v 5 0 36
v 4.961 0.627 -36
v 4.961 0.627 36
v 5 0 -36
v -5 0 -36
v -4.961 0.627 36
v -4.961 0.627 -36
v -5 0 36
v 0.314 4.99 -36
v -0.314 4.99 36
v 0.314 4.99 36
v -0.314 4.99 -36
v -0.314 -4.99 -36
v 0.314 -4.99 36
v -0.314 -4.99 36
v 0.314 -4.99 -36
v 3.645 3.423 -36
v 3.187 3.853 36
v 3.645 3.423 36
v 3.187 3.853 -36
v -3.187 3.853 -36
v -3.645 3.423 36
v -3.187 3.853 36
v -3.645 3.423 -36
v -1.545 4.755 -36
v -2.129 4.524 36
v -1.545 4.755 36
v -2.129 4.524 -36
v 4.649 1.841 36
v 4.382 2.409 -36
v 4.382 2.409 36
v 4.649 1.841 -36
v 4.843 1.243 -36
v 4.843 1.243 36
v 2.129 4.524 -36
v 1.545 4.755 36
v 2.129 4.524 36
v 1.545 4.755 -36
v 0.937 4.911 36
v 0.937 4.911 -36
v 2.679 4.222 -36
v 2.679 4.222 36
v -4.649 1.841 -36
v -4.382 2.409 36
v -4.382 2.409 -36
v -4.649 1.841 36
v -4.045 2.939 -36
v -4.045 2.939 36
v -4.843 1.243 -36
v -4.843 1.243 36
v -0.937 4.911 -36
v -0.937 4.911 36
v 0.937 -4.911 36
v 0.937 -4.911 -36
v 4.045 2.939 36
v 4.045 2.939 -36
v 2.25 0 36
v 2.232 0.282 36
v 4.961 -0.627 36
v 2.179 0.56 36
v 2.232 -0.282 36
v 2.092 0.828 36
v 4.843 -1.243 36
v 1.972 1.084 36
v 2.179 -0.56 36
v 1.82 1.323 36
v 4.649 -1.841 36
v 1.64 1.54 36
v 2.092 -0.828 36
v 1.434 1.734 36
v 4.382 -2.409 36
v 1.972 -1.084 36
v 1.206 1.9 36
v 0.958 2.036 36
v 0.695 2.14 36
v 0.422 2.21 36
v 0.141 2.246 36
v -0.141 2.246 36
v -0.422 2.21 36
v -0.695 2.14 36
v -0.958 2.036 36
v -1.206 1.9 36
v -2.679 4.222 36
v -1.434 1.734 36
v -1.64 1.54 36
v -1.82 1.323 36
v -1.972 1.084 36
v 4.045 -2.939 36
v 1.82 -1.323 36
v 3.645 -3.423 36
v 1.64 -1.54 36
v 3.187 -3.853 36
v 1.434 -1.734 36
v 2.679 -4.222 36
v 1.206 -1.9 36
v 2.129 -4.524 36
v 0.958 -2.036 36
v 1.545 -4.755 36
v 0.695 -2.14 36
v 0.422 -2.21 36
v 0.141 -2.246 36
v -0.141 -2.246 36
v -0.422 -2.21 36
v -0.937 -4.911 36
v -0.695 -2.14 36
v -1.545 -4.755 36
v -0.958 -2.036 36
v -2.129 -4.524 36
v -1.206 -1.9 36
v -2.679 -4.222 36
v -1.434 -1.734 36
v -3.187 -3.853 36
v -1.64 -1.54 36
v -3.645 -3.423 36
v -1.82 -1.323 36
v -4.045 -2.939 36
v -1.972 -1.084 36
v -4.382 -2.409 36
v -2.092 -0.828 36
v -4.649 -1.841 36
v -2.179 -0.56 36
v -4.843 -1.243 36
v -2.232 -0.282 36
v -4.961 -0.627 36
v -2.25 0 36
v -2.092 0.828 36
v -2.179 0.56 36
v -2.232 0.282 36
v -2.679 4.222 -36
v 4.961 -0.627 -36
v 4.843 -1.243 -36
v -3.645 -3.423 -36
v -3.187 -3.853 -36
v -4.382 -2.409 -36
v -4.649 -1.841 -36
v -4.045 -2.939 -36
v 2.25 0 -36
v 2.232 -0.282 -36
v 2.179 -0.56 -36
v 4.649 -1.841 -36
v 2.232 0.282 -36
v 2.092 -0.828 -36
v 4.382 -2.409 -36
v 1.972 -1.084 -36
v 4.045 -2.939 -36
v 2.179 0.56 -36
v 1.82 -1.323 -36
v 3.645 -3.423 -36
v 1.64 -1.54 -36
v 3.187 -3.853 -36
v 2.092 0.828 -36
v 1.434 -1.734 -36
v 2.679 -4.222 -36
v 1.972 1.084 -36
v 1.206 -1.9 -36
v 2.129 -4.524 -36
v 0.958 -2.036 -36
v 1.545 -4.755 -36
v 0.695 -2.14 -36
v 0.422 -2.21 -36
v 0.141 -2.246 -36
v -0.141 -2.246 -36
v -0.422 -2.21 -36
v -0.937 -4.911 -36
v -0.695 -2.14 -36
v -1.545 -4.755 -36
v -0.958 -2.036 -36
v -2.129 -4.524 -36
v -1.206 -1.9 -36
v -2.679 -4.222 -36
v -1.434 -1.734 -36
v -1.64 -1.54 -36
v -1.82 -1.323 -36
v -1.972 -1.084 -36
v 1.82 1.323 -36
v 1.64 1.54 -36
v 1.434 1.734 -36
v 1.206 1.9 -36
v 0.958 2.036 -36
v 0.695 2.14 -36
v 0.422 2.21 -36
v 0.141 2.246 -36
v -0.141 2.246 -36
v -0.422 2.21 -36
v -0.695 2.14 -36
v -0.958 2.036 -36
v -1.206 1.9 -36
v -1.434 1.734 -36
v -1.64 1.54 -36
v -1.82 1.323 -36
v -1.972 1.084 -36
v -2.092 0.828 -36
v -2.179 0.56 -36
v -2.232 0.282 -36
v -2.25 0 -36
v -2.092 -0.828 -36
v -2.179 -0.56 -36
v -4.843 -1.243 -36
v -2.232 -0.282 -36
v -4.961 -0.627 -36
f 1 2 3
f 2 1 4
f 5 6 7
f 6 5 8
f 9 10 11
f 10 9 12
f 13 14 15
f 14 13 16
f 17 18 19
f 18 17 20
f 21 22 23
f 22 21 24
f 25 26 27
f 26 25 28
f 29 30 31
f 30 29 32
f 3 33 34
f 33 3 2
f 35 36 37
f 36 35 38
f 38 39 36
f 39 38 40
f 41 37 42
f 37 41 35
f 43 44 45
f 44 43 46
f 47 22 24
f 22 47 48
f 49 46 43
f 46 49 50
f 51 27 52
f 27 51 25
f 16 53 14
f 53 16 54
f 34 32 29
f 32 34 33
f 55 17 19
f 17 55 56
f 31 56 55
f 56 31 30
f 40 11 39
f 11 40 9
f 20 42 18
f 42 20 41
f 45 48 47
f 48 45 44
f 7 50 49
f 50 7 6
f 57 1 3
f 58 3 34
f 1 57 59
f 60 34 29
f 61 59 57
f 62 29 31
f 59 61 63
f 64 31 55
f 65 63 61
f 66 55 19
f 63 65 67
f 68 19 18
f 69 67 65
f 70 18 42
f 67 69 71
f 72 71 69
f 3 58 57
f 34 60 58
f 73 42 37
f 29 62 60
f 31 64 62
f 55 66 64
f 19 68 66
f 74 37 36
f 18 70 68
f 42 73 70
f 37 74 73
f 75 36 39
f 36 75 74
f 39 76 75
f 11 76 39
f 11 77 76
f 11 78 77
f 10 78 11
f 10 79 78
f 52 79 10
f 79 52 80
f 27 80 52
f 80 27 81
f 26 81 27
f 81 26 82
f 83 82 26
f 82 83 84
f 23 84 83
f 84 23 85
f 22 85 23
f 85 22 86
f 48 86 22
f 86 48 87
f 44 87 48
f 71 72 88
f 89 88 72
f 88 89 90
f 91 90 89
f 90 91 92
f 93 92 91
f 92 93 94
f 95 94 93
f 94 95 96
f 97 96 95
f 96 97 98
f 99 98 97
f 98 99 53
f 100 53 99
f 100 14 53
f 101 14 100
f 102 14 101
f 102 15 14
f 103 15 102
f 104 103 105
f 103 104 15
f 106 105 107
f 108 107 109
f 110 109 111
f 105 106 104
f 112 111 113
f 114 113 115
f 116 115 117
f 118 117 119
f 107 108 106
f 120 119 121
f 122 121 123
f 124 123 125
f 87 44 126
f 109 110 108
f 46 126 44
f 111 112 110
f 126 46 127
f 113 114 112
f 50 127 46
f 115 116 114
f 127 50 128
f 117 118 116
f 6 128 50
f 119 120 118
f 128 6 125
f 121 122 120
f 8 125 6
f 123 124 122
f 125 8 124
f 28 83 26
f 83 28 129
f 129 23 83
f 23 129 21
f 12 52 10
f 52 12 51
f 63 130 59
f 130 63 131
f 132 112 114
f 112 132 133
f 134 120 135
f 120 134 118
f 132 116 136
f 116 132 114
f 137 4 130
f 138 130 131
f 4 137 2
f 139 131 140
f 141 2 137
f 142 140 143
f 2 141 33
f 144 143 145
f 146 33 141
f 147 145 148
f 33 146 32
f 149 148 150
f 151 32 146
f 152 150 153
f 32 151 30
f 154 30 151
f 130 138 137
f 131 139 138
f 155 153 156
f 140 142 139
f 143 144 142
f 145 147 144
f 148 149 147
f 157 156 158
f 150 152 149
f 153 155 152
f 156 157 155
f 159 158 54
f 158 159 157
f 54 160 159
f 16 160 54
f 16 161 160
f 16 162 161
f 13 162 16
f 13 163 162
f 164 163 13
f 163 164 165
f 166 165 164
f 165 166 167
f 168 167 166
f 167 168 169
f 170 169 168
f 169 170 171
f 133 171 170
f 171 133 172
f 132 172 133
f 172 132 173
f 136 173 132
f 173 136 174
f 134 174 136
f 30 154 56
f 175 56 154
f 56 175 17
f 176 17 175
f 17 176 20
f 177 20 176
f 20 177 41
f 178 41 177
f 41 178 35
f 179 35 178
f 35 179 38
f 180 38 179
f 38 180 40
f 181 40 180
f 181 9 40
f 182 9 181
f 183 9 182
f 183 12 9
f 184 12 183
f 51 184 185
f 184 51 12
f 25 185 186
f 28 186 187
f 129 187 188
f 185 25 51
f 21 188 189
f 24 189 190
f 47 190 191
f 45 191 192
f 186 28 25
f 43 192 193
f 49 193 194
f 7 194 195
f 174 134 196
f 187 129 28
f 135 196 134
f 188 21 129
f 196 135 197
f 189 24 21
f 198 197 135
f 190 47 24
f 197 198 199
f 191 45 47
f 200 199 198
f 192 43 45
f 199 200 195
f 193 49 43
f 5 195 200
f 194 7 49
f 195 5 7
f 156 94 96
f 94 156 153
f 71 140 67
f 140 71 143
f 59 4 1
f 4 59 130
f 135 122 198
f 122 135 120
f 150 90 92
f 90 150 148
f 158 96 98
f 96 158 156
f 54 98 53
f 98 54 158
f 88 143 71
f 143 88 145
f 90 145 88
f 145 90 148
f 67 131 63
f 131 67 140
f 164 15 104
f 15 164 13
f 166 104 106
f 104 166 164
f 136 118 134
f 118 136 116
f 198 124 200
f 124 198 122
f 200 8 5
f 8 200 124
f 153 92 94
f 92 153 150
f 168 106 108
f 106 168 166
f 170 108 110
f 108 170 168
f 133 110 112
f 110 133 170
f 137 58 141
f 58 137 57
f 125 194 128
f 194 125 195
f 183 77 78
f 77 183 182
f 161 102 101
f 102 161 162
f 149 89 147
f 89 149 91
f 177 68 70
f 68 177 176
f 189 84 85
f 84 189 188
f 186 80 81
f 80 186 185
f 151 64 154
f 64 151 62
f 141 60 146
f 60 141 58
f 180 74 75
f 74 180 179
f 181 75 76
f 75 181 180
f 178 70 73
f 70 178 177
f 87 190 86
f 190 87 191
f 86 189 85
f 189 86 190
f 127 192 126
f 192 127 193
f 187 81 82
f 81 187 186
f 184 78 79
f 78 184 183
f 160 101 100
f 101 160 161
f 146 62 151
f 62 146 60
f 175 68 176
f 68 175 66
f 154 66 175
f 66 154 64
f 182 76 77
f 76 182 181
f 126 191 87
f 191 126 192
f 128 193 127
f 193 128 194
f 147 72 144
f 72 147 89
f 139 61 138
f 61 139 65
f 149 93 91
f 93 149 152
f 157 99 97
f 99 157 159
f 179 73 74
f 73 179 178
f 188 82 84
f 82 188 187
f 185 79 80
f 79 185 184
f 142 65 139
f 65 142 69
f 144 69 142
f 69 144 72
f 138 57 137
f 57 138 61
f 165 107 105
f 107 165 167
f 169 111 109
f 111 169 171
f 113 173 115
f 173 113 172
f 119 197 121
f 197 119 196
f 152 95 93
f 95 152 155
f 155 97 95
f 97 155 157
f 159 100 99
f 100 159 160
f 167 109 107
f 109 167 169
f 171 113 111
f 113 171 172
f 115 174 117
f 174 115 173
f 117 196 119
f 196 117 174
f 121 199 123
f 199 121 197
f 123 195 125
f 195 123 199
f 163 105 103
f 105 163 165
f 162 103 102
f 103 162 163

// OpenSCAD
$fn = 50;


difference() {
	union() {
		translate(v = [0, 0, -36.0000000000]) {
			cylinder(h = 72, r = 5.0000000000);
		}
	}
	union() {
		translate(v = [0, 0, -100.0000000000]) {
			cylinder(h = 200, r = 2.2500000000);
		}
	}
}
